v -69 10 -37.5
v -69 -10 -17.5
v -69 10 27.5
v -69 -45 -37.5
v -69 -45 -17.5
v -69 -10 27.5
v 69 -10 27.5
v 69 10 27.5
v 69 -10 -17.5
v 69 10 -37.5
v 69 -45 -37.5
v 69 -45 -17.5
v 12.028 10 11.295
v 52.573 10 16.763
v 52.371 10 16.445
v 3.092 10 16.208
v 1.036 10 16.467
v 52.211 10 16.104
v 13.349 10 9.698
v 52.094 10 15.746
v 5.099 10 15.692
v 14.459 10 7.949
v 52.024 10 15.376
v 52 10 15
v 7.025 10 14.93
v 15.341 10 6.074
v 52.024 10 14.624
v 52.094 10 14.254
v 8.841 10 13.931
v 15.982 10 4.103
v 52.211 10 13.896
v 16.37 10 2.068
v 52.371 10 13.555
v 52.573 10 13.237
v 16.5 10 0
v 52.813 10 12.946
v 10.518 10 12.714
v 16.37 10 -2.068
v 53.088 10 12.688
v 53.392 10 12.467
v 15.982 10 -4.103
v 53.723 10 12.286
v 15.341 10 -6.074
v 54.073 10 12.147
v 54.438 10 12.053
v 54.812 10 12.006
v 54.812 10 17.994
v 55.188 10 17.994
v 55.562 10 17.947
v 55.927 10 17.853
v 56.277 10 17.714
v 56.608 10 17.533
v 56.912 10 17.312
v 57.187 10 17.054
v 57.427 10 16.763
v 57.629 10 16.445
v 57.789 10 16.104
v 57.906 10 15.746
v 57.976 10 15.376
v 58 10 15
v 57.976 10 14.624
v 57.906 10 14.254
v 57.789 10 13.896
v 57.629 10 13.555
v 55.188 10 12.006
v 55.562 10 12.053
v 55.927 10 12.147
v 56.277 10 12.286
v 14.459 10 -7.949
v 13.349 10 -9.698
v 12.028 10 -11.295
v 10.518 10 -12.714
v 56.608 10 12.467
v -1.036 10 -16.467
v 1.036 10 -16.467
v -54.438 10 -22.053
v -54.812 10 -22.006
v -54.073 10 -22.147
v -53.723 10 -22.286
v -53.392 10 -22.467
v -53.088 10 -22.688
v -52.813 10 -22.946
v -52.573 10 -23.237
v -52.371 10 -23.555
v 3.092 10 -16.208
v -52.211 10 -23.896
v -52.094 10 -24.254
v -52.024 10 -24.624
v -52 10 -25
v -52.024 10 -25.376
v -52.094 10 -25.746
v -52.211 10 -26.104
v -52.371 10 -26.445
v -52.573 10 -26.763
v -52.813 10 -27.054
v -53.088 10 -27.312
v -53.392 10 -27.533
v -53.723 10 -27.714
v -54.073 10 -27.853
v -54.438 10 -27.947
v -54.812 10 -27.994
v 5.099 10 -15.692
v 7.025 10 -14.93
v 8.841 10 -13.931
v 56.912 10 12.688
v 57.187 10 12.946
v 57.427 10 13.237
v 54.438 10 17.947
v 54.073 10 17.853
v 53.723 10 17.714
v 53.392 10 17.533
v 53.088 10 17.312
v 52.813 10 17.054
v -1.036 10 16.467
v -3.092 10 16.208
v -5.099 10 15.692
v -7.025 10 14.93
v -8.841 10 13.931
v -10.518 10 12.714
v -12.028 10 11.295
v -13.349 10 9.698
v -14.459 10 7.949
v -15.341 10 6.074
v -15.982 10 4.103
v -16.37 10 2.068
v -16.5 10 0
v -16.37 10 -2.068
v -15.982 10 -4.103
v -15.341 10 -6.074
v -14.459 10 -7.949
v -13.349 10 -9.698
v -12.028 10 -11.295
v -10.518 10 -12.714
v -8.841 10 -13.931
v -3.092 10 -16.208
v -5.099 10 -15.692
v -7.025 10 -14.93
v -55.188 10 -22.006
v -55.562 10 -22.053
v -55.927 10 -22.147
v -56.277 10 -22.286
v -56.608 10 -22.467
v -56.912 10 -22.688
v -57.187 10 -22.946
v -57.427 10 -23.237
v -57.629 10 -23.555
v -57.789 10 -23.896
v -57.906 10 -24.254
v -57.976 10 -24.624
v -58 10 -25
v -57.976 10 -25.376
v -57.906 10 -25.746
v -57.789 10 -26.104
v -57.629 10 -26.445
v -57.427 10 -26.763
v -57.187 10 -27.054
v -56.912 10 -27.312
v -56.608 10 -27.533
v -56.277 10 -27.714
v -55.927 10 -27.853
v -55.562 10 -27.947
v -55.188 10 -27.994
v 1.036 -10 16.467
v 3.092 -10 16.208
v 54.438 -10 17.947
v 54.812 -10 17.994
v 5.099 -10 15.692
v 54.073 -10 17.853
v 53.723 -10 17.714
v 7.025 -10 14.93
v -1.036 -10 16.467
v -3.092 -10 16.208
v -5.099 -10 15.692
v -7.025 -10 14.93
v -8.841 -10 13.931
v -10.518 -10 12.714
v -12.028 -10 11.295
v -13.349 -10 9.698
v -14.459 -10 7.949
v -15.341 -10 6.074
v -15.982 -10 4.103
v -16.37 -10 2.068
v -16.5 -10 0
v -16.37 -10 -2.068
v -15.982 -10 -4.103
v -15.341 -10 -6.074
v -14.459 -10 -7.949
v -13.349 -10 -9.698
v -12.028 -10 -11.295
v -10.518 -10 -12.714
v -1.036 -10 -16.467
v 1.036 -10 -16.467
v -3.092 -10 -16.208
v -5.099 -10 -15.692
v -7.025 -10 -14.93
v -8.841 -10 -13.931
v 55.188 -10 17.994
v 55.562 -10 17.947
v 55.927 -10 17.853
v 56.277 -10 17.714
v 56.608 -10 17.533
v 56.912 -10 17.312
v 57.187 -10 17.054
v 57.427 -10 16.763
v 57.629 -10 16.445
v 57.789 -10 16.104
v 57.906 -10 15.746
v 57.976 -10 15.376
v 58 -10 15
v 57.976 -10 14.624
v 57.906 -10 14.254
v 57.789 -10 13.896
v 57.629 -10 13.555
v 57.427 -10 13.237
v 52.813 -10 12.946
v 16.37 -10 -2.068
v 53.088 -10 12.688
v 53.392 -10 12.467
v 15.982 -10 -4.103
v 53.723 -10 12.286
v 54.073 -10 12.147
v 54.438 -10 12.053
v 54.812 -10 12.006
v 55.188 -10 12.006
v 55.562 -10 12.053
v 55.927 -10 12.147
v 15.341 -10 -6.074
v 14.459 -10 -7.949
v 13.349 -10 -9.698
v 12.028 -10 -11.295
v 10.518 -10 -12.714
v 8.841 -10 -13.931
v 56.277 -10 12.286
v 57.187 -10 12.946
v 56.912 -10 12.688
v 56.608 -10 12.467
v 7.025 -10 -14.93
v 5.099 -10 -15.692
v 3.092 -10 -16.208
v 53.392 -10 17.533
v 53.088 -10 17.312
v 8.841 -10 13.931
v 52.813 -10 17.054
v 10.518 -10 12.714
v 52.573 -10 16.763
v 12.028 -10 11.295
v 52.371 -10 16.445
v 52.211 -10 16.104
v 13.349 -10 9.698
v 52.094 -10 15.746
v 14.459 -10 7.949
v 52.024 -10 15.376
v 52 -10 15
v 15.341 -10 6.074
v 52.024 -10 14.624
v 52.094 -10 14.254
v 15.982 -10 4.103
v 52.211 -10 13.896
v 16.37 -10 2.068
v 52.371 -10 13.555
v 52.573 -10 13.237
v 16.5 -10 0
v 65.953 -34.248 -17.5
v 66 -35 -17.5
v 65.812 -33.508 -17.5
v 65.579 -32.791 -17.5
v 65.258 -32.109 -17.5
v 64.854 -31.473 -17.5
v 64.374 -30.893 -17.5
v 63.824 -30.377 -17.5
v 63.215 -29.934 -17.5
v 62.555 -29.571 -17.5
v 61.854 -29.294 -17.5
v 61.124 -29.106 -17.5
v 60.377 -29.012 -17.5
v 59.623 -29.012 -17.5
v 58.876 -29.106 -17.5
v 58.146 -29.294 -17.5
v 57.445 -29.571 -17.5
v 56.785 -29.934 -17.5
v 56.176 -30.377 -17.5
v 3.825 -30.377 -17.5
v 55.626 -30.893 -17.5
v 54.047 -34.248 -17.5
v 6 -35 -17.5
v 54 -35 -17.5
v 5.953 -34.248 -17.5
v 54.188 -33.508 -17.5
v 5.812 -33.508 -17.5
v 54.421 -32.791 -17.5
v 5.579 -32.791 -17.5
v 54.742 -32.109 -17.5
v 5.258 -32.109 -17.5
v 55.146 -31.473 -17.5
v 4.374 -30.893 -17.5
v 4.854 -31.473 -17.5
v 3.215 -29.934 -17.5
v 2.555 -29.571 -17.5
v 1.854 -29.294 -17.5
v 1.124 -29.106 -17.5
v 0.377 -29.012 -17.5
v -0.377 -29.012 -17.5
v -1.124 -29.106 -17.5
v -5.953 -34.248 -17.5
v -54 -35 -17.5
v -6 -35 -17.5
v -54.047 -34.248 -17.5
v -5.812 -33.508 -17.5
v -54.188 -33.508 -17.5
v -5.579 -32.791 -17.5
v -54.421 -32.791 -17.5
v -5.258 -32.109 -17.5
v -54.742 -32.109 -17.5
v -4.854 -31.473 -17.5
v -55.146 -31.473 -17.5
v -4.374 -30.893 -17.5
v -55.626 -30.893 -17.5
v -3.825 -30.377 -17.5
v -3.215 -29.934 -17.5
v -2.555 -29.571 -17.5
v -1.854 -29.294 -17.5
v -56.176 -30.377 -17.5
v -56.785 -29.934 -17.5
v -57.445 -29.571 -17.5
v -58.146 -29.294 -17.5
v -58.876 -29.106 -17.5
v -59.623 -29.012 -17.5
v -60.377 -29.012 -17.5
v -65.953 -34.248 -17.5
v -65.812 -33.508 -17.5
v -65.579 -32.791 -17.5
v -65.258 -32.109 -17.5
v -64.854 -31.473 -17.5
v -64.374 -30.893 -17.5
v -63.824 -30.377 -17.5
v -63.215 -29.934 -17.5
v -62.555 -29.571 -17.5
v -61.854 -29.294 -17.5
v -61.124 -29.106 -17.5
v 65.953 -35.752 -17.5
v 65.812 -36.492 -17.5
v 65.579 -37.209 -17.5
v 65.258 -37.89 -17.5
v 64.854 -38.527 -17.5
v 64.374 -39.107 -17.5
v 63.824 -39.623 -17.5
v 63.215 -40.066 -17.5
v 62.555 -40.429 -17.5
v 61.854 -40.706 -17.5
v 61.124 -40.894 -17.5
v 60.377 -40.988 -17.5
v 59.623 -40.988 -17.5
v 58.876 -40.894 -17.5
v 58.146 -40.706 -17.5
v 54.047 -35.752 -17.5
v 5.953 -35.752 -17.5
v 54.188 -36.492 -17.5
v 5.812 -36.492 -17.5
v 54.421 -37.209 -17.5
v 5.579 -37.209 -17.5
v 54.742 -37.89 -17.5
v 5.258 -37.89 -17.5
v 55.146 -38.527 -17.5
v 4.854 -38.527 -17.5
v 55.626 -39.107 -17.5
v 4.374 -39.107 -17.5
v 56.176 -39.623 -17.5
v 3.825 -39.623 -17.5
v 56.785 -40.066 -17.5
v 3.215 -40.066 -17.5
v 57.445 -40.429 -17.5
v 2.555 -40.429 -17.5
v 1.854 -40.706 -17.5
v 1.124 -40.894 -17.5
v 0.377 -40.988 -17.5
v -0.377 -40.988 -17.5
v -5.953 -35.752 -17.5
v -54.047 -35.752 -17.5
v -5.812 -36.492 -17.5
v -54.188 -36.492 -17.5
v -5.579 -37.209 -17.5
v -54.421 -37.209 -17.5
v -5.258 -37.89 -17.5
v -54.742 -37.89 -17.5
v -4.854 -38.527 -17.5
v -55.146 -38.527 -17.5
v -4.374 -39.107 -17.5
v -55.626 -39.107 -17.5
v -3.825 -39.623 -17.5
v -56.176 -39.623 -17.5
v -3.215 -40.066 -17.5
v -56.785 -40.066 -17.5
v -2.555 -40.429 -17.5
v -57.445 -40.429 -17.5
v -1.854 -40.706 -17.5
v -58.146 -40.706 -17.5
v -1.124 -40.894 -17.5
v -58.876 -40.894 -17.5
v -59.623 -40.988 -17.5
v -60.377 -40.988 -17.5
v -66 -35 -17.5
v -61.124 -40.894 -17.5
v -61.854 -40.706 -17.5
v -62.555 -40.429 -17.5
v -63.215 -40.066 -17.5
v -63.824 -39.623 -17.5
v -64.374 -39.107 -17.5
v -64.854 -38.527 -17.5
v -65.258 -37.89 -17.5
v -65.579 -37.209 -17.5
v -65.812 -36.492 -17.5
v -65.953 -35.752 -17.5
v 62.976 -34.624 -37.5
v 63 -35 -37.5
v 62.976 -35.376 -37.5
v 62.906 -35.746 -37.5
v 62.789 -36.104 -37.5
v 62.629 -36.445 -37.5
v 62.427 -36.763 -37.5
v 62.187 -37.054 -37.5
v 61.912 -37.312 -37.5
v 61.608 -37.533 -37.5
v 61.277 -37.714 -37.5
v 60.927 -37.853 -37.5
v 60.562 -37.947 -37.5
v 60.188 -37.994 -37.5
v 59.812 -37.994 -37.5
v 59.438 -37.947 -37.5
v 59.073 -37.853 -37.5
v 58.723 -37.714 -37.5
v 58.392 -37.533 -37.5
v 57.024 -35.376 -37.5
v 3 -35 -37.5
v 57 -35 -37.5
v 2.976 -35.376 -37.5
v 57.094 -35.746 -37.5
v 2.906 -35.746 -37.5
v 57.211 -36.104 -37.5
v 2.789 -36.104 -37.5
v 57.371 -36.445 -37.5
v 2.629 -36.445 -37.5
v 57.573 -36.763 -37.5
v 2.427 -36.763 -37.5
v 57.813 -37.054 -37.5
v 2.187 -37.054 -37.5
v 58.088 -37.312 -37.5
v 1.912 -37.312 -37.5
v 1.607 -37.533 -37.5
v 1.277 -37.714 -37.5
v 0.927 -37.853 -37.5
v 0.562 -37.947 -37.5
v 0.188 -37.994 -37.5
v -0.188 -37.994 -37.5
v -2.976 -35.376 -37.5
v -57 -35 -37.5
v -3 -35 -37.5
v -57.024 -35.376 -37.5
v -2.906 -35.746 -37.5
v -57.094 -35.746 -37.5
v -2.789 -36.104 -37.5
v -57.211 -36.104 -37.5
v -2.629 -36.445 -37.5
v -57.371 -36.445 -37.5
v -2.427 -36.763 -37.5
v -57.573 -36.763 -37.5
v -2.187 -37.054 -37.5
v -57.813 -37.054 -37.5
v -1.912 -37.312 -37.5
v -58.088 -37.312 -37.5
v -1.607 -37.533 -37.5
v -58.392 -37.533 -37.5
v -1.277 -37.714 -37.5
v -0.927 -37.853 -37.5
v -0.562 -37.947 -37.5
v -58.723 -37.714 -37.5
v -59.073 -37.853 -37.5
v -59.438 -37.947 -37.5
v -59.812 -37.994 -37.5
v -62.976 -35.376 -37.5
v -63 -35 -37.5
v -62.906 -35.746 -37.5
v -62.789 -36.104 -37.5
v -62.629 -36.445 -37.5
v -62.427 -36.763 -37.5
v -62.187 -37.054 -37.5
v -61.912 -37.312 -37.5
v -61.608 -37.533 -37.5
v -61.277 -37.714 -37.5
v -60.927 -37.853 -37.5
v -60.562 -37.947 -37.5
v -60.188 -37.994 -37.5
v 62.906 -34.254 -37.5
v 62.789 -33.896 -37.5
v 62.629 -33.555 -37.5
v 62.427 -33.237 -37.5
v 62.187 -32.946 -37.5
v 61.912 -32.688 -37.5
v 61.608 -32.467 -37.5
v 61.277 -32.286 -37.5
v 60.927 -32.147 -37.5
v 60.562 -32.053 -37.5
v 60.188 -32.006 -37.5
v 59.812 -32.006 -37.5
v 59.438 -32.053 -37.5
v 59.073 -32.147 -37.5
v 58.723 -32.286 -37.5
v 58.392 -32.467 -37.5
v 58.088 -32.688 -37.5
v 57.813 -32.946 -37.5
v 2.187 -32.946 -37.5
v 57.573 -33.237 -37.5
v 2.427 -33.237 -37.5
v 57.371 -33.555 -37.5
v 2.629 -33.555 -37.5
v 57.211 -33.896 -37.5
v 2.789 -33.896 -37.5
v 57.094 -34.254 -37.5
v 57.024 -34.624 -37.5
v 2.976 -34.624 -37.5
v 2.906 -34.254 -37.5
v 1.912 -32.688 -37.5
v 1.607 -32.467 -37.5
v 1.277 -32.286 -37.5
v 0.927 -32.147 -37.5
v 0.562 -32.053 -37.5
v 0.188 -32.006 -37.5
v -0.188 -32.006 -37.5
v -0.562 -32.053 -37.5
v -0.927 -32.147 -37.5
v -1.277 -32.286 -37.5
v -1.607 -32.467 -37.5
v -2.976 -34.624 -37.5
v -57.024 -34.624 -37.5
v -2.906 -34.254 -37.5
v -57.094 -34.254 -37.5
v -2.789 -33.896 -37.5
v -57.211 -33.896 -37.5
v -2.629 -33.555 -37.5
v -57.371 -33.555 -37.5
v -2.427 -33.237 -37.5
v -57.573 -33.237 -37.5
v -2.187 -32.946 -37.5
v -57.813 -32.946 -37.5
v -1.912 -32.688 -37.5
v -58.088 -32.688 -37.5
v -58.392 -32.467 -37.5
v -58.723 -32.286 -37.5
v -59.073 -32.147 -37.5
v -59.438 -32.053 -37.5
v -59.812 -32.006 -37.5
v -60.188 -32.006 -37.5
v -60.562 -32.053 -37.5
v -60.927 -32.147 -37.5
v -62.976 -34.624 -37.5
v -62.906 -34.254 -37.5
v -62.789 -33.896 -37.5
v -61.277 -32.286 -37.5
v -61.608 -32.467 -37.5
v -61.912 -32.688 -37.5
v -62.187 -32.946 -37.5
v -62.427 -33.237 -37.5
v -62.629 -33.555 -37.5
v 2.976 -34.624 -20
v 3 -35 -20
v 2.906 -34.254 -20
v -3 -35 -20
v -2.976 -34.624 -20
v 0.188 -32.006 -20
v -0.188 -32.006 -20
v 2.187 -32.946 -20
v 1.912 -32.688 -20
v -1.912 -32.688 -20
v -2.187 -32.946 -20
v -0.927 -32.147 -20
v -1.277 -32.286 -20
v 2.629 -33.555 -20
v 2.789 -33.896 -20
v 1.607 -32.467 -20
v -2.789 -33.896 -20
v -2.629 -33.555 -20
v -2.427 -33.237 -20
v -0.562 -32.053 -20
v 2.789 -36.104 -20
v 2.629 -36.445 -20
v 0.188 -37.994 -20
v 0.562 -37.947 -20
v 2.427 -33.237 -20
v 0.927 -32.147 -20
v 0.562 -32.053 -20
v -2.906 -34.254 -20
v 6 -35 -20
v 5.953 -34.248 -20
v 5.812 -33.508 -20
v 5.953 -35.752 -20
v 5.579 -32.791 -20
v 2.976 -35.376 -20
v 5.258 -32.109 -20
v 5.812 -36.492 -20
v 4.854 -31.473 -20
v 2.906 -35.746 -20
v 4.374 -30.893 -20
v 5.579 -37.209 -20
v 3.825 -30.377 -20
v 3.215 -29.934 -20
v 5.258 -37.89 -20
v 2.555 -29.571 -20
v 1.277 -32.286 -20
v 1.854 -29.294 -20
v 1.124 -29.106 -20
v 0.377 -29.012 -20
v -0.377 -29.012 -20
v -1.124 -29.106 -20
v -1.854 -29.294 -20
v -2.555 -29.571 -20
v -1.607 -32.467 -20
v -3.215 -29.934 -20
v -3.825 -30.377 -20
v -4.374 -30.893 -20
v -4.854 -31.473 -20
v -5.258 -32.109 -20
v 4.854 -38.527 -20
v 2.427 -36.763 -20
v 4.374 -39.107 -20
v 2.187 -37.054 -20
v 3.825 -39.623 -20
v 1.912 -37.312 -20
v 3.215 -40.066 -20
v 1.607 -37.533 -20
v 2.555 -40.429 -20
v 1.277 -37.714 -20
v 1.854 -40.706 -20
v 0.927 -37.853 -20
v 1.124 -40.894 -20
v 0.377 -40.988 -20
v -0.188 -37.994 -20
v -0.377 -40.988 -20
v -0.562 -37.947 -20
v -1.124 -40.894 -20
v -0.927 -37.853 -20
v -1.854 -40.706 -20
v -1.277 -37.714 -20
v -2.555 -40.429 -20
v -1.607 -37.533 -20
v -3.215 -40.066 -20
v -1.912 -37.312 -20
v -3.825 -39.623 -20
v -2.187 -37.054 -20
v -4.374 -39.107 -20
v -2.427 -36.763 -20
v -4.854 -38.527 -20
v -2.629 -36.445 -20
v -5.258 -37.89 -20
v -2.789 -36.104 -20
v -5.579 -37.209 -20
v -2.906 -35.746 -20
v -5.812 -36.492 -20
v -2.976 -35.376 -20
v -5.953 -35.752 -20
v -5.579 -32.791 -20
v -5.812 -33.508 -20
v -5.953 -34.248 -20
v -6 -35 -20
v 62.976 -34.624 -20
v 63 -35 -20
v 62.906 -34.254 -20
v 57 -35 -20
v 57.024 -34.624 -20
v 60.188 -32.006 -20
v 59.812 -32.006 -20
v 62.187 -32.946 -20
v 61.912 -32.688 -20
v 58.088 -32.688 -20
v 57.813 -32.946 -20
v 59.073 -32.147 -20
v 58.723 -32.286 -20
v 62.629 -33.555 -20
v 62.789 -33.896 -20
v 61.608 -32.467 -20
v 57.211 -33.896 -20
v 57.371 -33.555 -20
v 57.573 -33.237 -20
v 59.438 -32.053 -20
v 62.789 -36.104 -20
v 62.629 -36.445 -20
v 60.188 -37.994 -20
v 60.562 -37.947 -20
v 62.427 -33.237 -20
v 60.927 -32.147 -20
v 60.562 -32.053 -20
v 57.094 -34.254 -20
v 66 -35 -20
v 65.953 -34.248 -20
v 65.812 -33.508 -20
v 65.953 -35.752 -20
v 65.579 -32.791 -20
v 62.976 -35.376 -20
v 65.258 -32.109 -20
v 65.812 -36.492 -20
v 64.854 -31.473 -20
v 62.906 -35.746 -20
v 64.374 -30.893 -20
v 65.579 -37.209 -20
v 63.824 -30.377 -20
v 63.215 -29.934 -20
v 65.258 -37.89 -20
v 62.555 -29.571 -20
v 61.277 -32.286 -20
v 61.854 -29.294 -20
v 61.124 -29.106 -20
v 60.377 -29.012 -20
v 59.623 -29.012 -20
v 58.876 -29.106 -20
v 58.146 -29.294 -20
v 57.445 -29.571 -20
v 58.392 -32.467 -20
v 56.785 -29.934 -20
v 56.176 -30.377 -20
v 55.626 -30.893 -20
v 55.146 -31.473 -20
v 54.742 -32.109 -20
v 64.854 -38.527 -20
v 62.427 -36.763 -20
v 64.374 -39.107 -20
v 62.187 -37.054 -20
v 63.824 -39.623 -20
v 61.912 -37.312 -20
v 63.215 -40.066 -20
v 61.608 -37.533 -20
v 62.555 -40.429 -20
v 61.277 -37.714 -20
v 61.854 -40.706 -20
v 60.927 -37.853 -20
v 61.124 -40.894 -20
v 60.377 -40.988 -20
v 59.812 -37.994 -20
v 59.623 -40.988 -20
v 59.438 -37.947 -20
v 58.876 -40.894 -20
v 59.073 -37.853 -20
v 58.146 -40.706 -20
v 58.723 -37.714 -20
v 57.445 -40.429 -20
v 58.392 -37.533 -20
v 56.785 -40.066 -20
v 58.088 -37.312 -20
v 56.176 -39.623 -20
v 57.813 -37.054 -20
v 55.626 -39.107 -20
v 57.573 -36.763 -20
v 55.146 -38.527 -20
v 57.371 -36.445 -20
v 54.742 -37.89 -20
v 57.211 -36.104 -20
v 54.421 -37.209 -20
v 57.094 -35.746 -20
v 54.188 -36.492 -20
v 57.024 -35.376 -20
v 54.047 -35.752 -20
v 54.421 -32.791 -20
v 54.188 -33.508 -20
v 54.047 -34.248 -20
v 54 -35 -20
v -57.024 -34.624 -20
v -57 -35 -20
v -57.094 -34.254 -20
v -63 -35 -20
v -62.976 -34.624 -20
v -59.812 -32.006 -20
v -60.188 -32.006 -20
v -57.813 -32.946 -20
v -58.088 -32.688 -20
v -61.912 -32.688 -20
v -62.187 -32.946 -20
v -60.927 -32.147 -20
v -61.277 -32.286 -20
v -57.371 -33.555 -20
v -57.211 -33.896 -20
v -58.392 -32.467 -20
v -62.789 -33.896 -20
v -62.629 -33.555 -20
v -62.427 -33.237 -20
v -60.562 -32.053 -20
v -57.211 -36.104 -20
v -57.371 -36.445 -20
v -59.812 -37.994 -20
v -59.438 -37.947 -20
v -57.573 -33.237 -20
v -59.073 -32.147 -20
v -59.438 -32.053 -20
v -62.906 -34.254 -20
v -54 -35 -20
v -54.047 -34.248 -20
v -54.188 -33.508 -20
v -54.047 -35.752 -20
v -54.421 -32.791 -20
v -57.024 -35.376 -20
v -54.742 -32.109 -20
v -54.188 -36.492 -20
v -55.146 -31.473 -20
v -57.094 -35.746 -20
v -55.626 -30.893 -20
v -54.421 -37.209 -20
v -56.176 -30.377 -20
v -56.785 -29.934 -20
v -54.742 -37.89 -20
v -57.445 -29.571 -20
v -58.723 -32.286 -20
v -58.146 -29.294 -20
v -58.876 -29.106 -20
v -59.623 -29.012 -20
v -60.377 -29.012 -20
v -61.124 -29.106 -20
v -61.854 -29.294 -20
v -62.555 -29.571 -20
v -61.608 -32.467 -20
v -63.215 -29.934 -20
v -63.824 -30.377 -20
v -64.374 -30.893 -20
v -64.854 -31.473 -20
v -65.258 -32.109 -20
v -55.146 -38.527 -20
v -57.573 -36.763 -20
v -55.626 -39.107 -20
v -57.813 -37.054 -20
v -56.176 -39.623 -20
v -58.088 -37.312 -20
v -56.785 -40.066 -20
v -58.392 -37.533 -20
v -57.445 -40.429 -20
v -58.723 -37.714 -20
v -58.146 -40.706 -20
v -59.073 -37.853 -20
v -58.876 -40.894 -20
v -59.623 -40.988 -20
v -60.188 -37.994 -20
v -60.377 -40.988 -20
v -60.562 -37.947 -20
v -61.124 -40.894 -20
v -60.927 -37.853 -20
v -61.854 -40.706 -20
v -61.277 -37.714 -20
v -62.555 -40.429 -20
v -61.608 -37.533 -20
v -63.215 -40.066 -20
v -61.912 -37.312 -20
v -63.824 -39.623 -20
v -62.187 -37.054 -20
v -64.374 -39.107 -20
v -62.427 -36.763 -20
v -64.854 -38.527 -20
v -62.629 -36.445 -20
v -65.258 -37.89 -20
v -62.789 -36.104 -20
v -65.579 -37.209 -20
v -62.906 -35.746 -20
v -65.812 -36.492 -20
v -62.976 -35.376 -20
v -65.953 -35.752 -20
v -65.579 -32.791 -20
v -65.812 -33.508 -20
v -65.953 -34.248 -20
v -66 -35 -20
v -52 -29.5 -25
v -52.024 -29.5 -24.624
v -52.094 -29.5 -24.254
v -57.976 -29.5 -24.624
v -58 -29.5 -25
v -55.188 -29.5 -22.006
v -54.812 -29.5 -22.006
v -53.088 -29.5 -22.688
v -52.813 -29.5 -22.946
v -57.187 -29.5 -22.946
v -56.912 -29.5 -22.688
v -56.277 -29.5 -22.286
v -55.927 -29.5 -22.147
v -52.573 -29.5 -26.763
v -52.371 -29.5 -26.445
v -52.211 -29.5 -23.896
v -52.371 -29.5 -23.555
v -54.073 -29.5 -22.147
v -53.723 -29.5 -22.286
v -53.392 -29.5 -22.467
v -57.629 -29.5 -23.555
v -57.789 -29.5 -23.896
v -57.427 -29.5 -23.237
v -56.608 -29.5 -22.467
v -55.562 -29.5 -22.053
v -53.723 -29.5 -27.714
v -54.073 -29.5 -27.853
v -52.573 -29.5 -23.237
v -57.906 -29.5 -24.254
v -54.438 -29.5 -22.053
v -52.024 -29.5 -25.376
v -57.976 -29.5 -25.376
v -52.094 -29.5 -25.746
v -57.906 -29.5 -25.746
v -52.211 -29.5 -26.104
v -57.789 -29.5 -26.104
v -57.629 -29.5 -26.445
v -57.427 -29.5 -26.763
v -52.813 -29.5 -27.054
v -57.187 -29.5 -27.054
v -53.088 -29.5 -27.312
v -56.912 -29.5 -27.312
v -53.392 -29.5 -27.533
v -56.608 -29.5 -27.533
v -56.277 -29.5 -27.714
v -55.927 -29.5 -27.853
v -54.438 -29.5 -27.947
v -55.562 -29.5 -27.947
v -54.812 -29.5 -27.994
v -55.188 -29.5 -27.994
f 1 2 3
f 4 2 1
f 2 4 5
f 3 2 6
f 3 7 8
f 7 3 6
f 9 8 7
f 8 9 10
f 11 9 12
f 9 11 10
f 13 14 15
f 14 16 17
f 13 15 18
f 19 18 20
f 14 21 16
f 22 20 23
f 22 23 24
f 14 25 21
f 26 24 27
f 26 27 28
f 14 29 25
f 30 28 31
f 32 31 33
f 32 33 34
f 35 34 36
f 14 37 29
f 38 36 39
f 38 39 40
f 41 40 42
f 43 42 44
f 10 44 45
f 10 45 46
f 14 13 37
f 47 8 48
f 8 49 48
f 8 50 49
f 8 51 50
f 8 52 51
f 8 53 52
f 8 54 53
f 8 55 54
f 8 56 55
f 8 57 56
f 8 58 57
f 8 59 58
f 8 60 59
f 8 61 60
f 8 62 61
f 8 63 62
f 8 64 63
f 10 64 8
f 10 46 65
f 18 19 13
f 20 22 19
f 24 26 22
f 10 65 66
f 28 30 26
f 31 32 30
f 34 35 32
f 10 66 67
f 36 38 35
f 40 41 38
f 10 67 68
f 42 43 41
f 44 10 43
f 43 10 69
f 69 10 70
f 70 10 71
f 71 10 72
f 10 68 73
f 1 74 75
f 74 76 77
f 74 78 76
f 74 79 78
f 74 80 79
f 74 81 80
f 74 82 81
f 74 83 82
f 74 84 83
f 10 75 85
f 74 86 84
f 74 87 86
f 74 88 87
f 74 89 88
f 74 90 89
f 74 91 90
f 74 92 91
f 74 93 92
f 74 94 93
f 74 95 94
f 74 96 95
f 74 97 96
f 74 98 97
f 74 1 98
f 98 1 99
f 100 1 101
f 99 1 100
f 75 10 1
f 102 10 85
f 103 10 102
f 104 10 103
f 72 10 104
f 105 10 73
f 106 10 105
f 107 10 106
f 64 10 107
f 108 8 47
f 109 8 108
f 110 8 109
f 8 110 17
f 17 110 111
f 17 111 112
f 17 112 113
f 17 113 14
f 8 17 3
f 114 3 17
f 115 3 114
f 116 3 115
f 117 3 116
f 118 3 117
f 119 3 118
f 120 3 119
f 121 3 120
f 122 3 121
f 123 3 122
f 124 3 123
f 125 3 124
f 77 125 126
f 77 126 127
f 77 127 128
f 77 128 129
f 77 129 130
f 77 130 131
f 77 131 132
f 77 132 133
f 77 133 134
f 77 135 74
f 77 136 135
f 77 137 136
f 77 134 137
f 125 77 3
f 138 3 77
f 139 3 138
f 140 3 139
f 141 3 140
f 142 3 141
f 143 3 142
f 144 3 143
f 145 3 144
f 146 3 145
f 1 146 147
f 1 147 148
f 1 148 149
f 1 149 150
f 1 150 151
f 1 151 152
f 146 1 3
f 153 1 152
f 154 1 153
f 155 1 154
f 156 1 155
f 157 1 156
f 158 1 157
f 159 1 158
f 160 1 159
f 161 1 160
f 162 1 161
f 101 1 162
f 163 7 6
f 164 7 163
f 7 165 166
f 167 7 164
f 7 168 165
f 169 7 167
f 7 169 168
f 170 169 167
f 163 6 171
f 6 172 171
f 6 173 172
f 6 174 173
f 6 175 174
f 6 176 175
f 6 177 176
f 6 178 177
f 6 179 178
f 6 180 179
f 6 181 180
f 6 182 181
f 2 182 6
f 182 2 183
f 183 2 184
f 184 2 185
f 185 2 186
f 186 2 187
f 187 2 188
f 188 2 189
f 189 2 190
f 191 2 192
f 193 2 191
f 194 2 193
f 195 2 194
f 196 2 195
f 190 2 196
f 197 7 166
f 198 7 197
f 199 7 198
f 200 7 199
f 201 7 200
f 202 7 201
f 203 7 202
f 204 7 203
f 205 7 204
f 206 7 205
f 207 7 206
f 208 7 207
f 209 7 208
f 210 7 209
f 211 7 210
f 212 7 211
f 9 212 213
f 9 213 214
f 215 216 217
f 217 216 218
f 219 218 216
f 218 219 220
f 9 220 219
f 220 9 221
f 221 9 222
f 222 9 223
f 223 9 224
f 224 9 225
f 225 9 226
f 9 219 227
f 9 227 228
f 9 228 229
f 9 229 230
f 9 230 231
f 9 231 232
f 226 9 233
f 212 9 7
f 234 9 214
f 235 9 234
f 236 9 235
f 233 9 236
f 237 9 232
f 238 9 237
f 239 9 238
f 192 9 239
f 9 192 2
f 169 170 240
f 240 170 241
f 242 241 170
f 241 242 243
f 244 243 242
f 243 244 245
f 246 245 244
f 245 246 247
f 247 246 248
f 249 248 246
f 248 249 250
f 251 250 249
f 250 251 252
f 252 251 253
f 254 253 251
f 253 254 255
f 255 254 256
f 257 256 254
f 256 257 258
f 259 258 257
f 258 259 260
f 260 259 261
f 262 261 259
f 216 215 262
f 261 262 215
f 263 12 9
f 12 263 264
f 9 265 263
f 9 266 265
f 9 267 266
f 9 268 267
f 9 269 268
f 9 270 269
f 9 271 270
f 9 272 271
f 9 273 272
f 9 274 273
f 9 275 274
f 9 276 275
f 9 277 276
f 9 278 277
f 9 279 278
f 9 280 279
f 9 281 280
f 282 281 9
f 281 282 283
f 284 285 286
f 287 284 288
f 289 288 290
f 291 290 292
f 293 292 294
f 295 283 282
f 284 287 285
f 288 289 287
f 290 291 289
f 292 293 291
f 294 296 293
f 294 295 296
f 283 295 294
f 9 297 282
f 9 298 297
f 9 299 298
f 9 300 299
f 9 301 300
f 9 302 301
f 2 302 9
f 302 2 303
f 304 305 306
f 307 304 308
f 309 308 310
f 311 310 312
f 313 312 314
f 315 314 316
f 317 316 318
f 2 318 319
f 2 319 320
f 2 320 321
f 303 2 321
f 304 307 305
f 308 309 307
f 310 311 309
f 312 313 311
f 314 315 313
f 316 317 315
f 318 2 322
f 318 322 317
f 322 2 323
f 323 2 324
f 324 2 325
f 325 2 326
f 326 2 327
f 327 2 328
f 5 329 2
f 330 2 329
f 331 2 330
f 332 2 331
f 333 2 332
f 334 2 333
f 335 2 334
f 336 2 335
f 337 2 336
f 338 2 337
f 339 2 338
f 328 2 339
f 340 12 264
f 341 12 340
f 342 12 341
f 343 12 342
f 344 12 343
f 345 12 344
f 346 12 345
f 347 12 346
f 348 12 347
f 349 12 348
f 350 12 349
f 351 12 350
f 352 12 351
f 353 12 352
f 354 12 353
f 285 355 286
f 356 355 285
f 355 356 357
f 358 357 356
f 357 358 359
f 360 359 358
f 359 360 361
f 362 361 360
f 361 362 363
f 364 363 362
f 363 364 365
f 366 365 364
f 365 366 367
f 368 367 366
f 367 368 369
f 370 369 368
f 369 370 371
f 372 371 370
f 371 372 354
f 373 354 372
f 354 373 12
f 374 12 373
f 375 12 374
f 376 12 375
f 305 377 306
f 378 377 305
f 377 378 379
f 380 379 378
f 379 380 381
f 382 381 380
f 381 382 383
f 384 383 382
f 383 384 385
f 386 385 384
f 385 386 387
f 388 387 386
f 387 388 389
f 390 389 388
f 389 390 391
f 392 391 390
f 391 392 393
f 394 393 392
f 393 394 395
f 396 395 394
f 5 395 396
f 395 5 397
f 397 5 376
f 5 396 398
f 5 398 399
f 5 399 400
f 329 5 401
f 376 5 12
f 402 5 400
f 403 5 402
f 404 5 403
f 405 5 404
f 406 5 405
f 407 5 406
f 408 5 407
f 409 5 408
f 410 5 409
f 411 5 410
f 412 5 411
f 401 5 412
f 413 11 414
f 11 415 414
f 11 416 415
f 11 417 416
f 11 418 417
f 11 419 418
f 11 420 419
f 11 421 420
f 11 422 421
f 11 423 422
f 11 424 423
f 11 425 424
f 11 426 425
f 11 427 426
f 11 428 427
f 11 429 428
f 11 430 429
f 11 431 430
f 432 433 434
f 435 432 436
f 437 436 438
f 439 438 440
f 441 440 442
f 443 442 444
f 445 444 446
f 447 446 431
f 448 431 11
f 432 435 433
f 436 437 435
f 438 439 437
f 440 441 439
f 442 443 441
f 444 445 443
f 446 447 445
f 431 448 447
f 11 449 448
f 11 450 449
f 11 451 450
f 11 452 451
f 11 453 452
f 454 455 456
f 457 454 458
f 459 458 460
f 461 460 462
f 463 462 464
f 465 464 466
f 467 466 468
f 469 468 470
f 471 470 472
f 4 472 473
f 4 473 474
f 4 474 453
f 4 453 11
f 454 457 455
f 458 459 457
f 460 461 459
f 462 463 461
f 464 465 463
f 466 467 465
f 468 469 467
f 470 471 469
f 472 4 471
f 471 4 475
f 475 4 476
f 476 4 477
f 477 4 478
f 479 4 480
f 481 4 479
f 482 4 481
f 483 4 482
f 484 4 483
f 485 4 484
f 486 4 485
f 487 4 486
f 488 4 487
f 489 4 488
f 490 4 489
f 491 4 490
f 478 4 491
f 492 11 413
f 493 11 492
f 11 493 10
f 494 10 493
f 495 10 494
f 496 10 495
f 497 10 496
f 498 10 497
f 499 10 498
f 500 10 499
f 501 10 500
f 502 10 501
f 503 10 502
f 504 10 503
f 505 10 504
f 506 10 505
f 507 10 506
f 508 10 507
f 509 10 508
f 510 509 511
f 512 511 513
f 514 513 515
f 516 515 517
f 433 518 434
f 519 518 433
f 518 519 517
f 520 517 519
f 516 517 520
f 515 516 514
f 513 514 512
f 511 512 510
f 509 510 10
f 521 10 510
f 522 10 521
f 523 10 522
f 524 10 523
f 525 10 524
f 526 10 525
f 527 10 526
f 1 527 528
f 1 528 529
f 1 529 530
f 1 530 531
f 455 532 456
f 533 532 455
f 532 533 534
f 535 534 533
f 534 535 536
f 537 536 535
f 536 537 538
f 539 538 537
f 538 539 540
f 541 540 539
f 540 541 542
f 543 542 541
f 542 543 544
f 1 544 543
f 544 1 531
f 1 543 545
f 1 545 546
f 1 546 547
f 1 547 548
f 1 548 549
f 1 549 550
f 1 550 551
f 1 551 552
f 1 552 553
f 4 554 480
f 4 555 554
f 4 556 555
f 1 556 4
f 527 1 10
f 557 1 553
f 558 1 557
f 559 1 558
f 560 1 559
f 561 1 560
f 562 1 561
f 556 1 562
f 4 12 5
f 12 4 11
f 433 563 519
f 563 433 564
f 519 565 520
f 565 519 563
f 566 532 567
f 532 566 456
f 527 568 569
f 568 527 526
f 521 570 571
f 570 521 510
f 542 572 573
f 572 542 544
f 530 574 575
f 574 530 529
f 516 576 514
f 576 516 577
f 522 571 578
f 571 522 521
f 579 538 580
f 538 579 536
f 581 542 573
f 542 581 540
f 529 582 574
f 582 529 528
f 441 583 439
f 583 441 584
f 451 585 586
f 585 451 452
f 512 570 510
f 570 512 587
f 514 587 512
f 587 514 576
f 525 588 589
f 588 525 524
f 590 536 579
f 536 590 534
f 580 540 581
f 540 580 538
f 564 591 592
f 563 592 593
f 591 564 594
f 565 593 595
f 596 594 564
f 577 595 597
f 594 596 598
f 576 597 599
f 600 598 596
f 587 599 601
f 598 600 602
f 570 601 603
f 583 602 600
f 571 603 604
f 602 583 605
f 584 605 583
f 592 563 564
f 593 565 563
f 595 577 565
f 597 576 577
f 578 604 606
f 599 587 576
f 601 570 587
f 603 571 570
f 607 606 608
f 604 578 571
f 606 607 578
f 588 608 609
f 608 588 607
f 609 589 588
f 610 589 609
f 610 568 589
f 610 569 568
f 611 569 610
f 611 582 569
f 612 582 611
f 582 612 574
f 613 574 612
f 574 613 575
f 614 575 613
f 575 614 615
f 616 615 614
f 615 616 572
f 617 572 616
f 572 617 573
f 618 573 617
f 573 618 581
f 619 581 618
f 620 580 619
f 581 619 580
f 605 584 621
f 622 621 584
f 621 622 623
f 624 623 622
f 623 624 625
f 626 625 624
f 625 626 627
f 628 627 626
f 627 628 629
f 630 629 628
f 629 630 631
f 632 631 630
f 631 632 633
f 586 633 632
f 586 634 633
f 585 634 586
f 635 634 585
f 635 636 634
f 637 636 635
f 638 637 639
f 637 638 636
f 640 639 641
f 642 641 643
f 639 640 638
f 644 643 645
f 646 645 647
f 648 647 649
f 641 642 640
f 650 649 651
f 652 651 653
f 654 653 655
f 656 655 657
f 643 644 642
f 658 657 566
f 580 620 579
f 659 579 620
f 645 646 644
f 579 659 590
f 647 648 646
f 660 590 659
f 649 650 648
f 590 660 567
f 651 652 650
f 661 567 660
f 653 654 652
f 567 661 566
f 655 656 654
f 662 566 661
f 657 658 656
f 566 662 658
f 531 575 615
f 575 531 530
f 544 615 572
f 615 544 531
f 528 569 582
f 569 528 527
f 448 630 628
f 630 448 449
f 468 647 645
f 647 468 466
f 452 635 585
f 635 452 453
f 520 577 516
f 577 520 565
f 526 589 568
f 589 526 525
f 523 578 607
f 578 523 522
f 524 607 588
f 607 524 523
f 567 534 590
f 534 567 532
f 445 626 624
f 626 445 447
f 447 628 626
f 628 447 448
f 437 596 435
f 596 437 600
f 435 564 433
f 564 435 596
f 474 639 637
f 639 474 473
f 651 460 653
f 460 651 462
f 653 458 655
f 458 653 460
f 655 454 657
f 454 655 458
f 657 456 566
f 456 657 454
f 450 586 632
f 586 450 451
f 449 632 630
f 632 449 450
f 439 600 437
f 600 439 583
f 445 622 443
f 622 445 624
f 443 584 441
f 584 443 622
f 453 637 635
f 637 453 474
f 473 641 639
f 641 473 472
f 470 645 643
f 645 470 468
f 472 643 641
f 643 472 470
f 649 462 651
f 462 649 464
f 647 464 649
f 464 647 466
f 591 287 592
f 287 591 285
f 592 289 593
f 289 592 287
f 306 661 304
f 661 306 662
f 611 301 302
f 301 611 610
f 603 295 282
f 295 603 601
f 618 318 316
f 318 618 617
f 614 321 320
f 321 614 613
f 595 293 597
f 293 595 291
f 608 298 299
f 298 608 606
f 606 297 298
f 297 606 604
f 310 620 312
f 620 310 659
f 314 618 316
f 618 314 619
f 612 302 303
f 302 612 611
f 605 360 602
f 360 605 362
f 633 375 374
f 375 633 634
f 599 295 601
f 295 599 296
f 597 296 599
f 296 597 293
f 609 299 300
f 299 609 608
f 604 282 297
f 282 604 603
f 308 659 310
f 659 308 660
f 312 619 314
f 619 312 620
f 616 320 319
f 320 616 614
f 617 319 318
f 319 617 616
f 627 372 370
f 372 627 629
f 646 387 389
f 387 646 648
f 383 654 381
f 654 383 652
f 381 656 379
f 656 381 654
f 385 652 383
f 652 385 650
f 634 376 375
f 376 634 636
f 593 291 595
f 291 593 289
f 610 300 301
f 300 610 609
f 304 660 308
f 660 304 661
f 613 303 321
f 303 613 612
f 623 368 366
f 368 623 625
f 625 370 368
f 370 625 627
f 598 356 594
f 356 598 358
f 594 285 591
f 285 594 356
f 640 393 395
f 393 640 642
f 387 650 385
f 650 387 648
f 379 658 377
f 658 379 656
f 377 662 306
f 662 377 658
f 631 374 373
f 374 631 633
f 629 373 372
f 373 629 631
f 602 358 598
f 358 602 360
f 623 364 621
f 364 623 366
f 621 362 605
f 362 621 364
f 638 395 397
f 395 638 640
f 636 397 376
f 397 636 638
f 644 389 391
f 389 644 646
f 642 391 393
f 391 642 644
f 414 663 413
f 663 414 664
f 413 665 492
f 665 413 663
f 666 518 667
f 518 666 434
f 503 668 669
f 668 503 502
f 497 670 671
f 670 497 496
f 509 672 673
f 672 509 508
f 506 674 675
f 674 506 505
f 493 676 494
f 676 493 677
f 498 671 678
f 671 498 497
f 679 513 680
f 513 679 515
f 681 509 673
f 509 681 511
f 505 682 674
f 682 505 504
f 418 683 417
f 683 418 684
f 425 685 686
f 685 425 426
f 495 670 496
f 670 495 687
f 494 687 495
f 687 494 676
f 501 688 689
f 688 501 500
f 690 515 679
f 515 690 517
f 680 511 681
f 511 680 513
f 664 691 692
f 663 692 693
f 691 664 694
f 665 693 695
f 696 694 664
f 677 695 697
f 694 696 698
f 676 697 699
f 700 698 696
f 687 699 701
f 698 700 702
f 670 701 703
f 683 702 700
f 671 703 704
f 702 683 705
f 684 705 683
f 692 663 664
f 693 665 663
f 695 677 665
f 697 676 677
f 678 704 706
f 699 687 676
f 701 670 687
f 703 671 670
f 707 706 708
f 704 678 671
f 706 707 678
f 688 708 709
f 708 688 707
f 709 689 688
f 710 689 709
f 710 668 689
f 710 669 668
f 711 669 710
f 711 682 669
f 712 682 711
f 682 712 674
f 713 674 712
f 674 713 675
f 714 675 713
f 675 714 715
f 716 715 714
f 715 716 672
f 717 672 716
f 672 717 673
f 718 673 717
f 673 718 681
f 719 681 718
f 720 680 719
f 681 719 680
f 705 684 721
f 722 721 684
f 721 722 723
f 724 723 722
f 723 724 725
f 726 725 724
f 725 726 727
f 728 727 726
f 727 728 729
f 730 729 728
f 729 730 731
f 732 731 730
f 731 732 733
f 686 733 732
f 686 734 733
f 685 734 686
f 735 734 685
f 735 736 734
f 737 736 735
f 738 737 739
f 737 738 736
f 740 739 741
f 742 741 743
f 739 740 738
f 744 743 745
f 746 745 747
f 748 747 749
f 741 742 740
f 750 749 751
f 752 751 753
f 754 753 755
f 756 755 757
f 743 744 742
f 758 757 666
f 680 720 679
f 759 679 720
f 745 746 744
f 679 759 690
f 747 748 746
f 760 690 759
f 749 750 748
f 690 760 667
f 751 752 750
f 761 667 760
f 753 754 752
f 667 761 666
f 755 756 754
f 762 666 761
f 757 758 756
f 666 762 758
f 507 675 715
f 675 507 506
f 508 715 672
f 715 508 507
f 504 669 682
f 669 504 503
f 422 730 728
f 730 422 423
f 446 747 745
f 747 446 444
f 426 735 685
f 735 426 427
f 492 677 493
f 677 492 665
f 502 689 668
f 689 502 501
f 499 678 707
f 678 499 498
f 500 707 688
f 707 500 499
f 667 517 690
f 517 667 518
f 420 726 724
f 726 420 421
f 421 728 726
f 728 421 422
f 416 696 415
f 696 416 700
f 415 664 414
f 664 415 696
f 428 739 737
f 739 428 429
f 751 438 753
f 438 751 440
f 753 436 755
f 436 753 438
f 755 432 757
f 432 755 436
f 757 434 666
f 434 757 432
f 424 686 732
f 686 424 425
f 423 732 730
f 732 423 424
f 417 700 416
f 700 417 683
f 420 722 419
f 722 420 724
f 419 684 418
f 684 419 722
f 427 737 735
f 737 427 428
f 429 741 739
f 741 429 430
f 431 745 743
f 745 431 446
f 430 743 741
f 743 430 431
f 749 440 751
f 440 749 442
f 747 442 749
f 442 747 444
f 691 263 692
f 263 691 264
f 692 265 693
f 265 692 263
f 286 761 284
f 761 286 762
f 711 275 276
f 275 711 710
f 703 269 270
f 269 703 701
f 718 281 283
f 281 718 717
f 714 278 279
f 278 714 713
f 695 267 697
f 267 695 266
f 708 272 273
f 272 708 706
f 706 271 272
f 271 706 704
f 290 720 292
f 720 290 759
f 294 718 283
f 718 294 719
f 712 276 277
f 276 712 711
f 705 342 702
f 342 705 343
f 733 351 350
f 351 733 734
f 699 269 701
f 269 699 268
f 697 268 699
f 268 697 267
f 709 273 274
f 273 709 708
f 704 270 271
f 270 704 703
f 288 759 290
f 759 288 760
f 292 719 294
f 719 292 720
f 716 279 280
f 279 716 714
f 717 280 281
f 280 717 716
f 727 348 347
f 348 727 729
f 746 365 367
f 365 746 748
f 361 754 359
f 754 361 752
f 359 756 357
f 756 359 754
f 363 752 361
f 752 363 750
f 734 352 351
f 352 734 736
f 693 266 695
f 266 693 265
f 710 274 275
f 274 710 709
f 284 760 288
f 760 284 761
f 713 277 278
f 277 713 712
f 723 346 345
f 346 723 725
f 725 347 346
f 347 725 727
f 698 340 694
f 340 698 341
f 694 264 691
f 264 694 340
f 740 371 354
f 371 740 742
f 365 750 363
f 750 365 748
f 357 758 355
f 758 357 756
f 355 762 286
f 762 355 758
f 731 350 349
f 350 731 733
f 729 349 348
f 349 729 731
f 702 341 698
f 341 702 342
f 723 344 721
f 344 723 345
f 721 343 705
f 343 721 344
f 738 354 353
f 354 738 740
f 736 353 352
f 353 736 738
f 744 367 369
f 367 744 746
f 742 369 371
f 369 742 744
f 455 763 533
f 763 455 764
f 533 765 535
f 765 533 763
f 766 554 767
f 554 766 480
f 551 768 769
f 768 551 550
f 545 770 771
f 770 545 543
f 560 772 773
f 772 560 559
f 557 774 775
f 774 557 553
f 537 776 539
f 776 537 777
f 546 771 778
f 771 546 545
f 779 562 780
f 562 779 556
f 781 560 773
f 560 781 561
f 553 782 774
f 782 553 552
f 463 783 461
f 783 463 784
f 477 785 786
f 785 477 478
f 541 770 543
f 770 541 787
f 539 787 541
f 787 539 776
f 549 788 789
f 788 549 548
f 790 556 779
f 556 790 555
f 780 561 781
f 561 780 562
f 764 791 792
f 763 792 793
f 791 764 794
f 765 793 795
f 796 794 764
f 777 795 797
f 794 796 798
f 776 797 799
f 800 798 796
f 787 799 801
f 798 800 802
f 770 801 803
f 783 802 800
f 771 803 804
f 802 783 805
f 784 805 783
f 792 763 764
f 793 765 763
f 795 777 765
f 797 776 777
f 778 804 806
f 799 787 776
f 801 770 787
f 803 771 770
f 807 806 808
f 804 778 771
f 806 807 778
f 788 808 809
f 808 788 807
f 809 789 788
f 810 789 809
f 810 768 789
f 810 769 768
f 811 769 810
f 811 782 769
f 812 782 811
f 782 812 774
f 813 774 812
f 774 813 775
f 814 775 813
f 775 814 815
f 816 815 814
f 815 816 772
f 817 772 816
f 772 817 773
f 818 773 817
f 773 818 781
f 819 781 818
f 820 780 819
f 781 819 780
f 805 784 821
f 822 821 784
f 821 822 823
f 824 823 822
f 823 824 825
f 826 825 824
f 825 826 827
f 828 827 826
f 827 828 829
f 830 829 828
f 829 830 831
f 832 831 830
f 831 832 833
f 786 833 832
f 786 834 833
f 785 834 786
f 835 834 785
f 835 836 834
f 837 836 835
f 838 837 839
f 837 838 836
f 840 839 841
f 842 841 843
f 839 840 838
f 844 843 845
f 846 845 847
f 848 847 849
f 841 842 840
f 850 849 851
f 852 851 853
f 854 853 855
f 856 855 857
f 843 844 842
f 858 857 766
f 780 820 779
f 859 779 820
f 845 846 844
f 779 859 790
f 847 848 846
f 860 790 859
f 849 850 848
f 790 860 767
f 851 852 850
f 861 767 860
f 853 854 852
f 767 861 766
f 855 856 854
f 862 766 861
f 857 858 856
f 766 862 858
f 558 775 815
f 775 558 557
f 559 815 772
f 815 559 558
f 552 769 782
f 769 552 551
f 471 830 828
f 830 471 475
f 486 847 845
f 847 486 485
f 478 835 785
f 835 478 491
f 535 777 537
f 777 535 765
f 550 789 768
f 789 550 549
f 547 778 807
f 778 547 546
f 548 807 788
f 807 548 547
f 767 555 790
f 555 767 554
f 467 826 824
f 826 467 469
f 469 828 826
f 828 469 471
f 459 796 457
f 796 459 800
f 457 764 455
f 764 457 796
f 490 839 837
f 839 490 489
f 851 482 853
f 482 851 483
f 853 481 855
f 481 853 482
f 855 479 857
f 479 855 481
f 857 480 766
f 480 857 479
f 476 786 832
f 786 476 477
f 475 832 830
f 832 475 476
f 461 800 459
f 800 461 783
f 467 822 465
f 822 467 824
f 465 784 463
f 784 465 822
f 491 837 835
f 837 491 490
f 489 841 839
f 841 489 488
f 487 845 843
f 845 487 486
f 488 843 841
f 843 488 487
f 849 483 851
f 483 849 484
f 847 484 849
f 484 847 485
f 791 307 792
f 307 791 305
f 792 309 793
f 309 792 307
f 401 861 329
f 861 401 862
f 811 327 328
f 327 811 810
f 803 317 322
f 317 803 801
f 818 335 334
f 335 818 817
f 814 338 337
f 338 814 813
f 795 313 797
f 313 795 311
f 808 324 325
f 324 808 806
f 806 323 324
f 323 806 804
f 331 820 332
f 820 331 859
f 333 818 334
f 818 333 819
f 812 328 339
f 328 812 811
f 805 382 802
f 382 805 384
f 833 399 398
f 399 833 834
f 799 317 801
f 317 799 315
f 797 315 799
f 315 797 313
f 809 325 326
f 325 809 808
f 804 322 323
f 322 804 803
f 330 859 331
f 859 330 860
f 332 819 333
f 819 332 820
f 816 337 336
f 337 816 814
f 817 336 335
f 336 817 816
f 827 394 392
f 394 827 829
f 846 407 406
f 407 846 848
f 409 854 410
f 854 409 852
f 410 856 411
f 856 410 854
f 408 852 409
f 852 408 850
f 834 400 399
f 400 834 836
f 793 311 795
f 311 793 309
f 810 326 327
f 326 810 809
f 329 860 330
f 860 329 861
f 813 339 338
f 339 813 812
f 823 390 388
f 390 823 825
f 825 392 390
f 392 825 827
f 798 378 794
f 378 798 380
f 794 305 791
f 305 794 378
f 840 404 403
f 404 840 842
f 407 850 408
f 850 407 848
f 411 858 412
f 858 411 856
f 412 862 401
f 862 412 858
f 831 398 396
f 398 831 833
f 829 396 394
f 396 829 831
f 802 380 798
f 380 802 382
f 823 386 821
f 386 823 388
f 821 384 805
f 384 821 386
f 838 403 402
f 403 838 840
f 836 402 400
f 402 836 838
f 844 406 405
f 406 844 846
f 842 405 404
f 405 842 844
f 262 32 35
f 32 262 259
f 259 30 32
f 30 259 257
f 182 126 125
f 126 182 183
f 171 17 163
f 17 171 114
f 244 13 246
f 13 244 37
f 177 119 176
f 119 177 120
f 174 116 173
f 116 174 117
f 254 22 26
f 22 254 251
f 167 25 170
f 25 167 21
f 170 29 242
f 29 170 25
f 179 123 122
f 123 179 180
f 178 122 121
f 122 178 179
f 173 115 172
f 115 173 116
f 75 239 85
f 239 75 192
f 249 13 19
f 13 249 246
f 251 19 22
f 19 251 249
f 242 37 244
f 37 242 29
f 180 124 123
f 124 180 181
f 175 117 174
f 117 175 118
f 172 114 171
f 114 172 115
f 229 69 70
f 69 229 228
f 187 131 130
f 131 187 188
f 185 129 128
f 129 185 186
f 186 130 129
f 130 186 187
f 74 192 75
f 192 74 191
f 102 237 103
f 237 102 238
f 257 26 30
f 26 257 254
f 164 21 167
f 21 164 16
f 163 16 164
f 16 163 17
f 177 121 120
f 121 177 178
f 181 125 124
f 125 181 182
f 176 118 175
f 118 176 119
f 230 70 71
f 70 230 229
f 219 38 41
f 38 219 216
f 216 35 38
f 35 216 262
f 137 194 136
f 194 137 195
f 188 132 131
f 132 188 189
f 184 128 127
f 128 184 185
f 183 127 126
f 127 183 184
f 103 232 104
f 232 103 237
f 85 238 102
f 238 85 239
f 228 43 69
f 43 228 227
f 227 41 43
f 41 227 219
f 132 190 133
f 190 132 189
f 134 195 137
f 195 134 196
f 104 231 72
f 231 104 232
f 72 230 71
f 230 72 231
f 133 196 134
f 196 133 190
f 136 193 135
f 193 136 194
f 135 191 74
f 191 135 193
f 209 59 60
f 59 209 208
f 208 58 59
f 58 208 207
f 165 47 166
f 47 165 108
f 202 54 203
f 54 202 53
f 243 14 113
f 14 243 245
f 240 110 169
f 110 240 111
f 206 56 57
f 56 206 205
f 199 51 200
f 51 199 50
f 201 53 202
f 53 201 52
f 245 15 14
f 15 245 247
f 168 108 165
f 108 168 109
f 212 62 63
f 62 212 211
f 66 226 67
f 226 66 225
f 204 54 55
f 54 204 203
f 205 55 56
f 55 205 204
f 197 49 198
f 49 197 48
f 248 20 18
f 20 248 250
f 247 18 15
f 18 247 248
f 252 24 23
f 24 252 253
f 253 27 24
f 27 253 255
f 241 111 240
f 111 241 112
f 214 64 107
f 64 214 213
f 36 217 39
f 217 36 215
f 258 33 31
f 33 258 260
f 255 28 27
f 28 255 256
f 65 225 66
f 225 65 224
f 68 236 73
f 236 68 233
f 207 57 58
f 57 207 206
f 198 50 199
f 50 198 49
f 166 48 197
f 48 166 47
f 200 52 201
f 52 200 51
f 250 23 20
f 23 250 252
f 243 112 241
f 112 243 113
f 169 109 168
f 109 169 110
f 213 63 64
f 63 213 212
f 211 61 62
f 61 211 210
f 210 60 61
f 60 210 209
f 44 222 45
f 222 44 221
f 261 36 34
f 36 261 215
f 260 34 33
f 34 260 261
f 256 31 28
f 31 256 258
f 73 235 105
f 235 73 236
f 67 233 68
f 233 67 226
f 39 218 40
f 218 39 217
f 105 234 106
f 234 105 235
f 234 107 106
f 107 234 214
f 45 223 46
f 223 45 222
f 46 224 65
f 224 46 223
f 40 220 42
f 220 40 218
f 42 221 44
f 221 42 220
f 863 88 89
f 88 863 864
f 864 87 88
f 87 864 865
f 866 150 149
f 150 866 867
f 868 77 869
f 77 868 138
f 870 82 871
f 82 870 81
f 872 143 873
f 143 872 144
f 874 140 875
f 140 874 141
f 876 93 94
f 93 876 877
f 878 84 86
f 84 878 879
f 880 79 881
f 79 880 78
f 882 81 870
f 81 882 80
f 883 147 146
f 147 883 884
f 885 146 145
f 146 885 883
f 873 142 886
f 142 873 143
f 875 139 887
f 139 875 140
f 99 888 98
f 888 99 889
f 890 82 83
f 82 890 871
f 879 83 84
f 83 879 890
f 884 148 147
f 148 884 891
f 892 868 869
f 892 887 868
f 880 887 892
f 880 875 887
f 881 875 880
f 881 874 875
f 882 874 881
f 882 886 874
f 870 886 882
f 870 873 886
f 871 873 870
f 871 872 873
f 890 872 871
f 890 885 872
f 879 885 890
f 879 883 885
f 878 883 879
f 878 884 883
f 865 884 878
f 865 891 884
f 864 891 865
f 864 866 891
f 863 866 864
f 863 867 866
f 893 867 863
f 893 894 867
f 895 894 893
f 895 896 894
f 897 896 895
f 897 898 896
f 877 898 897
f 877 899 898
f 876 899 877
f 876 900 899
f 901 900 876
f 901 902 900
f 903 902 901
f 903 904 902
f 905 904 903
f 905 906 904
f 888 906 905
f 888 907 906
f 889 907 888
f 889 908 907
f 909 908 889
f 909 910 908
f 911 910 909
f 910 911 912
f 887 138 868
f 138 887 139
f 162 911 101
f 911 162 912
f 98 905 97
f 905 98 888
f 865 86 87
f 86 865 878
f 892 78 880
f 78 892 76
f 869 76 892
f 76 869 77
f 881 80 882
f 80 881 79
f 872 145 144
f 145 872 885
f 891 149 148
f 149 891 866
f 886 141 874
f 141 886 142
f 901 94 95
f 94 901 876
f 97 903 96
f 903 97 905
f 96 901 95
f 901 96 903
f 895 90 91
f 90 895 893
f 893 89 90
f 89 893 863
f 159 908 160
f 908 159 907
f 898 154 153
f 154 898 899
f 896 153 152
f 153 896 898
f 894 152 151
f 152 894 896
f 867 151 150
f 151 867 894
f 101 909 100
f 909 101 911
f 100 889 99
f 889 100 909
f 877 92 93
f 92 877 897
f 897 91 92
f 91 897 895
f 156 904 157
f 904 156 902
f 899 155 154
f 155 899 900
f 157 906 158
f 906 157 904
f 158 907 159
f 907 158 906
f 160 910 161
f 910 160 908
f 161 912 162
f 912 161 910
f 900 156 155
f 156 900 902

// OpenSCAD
// Hue Badlampenhalter

$fn =50;

module El() {

    cube ([138,20,55],center=true);

    translate([0,-55/2+10,-55/2])
    cube ([138,55,20],center=true);
}

module Loch() {
    
    rotate([90,0,0])
    translate([0,0,-20])
    cylinder(d=6,h=40);
//    rotate([90,0,0])
//    translate([0,0,-20])
//    cylinder(d=12,h=4);
}

module DoppelLoch() {
    
    rotate([90,0,0])
    translate([0,0,-90])
    cylinder(d=6,h=70);
    rotate([90,0,0])
    translate([0,0,-20])
    cylinder(d=12,h=4);
}

module Halter() {
    
    
    difference() {  
        El();
        rotate([90,0,0])
        translate([0,0,-20])
        cylinder(d=33,h=50);
        translate([55,-9.5,15])
        Loch();
        translate([-55,-9.5,-25])
        Loch();
        
        rotate([-90,0,0])
        translate([0,0,-35])
        DoppelLoch();
        
        rotate([-90,0,0])
        translate([60,0,-35])
        DoppelLoch();
        
        rotate([-90,0,0])
        translate([-60,0,-35])
        DoppelLoch();
    }
}


Halter();
